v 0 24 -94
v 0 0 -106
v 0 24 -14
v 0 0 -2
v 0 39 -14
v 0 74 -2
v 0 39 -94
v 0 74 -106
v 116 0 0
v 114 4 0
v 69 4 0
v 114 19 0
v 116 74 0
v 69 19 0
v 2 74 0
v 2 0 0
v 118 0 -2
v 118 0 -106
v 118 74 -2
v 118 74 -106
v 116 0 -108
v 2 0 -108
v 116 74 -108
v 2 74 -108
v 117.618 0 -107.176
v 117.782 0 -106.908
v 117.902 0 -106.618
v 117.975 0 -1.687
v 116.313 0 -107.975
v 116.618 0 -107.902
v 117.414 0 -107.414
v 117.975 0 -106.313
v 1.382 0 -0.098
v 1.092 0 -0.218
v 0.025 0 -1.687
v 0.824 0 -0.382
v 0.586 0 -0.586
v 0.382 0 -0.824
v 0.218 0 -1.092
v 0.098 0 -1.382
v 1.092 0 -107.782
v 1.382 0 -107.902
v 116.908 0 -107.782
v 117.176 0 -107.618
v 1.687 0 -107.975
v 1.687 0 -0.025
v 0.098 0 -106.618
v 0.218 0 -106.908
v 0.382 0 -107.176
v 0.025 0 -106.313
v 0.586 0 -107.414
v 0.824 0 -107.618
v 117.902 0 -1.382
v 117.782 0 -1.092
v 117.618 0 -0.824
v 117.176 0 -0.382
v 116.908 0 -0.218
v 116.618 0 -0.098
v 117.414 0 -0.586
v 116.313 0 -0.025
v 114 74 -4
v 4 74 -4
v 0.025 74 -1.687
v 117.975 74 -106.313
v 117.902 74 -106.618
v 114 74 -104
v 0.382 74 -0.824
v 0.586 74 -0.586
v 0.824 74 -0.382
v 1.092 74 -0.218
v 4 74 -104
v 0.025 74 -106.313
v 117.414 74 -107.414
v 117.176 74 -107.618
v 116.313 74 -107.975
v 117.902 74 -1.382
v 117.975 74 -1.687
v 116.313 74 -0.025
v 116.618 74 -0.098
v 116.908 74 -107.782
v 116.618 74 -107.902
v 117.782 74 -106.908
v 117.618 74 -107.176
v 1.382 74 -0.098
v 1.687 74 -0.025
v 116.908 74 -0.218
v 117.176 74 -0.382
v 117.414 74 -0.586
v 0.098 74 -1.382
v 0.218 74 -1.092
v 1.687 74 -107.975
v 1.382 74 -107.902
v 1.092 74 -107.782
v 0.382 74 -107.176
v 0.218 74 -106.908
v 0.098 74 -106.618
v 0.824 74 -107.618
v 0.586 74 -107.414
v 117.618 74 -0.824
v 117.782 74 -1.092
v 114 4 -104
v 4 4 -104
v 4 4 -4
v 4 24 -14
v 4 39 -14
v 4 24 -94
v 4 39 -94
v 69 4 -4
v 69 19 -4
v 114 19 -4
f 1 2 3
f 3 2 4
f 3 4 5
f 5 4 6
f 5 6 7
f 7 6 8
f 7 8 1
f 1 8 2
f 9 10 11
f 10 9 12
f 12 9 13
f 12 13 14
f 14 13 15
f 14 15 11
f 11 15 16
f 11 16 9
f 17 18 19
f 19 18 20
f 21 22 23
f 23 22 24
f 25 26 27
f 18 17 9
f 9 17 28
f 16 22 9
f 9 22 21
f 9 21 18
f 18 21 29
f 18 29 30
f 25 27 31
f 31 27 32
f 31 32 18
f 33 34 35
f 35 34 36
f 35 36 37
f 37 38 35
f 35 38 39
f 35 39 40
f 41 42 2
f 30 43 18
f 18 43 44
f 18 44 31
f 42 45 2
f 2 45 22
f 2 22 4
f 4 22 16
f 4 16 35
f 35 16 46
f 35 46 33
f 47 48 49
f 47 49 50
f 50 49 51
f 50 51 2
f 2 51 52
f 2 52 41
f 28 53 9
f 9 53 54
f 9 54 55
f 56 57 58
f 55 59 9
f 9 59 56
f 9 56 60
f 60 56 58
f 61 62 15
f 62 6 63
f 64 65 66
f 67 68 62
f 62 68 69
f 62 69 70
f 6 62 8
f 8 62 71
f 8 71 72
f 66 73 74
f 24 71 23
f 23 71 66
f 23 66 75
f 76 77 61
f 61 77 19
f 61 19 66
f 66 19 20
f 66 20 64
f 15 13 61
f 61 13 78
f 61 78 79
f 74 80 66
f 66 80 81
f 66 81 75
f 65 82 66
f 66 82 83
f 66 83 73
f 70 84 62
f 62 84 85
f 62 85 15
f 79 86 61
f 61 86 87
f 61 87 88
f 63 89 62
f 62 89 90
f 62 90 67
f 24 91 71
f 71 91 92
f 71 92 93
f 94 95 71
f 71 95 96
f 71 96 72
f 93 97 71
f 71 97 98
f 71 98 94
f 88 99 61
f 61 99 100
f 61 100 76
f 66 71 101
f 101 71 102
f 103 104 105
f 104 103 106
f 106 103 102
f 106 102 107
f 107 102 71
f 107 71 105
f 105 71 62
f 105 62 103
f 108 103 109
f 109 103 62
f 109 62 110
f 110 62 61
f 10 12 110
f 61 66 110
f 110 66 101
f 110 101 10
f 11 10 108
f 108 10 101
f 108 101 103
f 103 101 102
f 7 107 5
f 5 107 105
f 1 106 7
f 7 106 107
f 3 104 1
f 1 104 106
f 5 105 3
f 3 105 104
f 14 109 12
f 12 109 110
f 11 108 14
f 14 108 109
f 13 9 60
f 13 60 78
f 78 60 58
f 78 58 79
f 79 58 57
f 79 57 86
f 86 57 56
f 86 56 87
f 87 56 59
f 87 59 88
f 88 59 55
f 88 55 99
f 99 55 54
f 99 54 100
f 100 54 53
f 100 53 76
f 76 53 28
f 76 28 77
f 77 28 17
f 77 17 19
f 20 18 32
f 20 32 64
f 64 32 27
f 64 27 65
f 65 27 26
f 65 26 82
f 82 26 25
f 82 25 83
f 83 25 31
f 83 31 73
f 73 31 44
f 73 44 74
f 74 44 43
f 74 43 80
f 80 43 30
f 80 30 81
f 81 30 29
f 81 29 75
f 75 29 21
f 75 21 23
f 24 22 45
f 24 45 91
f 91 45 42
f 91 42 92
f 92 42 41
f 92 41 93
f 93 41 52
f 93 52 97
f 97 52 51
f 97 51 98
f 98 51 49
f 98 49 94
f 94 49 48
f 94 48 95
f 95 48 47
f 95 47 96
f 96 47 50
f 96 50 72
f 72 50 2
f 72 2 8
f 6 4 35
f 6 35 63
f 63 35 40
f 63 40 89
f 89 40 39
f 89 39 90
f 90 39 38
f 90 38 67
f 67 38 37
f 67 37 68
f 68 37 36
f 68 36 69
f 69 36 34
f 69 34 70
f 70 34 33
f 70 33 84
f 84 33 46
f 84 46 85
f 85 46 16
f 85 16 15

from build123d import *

# Parameters (mm, degrees)
SKETCH1_W           = 118
SKETCH1_H           = 108
BOSS_EXTRUDE1_DEPTH = 4
SKETCH2_W           = 118
SKETCH2_H           = 108
SKETCH2_W_2         = 110
SKETCH2_H_2         = 100
BOSS_EXTRUDE2_DEPTH = 70
SKETCH3_W           = 80
SKETCH3_H           = 15
CUT_EXTRUDE1_DEPTH  = 4
SKETCH4_W           = 45
SKETCH4_H           = 15
CUT_EXTRUDE2_DEPTH  = 4
FILLET1_R           = 2


with BuildPart() as part:
    # Sketch1 → Boss-Extrude1 (new body)
    with BuildSketch(Plane(origin=(0, 0, 0), x_dir=(1, 0, 0), z_dir=(0, 1, 0))):
        with Locations((59, 54)):
            Rectangle(SKETCH1_W, SKETCH1_H)
    extrude(amount=BOSS_EXTRUDE1_DEPTH)

    # Sketch2 → Boss-Extrude2 (add)
    with BuildSketch(Plane(origin=(0, 4, 0), x_dir=(1, 0, 0), z_dir=(0, 1, 0))):
        with Locations((59, 54)):
            Rectangle(SKETCH2_W, SKETCH2_H)
        with Locations((59, 54)):
            Rectangle(SKETCH2_W_2, SKETCH2_H_2, mode=Mode.SUBTRACT)
    extrude(amount=BOSS_EXTRUDE2_DEPTH)

    # Sketch3 → Cut-Extrude1 (cut)
    with BuildSketch(Plane.ZY):
        with Locations((-54, 31.5)):
            Rectangle(SKETCH3_W, SKETCH3_H)
    extrude(amount=-CUT_EXTRUDE1_DEPTH, mode=Mode.SUBTRACT)

    # Sketch4 → Cut-Extrude2 (cut)
    with BuildSketch(Plane.XY):
        with Locations((91.5, 11.5)):
            Rectangle(SKETCH4_W, SKETCH4_H)
    extrude(amount=-CUT_EXTRUDE2_DEPTH, mode=Mode.SUBTRACT)

    # Fillet1
    fillet1_edges = [part.edges().sort_by_distance(p)[0] for p in [
        (0, 37, -108),
        (118, 37, -108),
        (118, 37, 0),
        (0, 37, 0),
    ]]
    fillet(fillet1_edges, radius=FILLET1_R)


solid = part.part
